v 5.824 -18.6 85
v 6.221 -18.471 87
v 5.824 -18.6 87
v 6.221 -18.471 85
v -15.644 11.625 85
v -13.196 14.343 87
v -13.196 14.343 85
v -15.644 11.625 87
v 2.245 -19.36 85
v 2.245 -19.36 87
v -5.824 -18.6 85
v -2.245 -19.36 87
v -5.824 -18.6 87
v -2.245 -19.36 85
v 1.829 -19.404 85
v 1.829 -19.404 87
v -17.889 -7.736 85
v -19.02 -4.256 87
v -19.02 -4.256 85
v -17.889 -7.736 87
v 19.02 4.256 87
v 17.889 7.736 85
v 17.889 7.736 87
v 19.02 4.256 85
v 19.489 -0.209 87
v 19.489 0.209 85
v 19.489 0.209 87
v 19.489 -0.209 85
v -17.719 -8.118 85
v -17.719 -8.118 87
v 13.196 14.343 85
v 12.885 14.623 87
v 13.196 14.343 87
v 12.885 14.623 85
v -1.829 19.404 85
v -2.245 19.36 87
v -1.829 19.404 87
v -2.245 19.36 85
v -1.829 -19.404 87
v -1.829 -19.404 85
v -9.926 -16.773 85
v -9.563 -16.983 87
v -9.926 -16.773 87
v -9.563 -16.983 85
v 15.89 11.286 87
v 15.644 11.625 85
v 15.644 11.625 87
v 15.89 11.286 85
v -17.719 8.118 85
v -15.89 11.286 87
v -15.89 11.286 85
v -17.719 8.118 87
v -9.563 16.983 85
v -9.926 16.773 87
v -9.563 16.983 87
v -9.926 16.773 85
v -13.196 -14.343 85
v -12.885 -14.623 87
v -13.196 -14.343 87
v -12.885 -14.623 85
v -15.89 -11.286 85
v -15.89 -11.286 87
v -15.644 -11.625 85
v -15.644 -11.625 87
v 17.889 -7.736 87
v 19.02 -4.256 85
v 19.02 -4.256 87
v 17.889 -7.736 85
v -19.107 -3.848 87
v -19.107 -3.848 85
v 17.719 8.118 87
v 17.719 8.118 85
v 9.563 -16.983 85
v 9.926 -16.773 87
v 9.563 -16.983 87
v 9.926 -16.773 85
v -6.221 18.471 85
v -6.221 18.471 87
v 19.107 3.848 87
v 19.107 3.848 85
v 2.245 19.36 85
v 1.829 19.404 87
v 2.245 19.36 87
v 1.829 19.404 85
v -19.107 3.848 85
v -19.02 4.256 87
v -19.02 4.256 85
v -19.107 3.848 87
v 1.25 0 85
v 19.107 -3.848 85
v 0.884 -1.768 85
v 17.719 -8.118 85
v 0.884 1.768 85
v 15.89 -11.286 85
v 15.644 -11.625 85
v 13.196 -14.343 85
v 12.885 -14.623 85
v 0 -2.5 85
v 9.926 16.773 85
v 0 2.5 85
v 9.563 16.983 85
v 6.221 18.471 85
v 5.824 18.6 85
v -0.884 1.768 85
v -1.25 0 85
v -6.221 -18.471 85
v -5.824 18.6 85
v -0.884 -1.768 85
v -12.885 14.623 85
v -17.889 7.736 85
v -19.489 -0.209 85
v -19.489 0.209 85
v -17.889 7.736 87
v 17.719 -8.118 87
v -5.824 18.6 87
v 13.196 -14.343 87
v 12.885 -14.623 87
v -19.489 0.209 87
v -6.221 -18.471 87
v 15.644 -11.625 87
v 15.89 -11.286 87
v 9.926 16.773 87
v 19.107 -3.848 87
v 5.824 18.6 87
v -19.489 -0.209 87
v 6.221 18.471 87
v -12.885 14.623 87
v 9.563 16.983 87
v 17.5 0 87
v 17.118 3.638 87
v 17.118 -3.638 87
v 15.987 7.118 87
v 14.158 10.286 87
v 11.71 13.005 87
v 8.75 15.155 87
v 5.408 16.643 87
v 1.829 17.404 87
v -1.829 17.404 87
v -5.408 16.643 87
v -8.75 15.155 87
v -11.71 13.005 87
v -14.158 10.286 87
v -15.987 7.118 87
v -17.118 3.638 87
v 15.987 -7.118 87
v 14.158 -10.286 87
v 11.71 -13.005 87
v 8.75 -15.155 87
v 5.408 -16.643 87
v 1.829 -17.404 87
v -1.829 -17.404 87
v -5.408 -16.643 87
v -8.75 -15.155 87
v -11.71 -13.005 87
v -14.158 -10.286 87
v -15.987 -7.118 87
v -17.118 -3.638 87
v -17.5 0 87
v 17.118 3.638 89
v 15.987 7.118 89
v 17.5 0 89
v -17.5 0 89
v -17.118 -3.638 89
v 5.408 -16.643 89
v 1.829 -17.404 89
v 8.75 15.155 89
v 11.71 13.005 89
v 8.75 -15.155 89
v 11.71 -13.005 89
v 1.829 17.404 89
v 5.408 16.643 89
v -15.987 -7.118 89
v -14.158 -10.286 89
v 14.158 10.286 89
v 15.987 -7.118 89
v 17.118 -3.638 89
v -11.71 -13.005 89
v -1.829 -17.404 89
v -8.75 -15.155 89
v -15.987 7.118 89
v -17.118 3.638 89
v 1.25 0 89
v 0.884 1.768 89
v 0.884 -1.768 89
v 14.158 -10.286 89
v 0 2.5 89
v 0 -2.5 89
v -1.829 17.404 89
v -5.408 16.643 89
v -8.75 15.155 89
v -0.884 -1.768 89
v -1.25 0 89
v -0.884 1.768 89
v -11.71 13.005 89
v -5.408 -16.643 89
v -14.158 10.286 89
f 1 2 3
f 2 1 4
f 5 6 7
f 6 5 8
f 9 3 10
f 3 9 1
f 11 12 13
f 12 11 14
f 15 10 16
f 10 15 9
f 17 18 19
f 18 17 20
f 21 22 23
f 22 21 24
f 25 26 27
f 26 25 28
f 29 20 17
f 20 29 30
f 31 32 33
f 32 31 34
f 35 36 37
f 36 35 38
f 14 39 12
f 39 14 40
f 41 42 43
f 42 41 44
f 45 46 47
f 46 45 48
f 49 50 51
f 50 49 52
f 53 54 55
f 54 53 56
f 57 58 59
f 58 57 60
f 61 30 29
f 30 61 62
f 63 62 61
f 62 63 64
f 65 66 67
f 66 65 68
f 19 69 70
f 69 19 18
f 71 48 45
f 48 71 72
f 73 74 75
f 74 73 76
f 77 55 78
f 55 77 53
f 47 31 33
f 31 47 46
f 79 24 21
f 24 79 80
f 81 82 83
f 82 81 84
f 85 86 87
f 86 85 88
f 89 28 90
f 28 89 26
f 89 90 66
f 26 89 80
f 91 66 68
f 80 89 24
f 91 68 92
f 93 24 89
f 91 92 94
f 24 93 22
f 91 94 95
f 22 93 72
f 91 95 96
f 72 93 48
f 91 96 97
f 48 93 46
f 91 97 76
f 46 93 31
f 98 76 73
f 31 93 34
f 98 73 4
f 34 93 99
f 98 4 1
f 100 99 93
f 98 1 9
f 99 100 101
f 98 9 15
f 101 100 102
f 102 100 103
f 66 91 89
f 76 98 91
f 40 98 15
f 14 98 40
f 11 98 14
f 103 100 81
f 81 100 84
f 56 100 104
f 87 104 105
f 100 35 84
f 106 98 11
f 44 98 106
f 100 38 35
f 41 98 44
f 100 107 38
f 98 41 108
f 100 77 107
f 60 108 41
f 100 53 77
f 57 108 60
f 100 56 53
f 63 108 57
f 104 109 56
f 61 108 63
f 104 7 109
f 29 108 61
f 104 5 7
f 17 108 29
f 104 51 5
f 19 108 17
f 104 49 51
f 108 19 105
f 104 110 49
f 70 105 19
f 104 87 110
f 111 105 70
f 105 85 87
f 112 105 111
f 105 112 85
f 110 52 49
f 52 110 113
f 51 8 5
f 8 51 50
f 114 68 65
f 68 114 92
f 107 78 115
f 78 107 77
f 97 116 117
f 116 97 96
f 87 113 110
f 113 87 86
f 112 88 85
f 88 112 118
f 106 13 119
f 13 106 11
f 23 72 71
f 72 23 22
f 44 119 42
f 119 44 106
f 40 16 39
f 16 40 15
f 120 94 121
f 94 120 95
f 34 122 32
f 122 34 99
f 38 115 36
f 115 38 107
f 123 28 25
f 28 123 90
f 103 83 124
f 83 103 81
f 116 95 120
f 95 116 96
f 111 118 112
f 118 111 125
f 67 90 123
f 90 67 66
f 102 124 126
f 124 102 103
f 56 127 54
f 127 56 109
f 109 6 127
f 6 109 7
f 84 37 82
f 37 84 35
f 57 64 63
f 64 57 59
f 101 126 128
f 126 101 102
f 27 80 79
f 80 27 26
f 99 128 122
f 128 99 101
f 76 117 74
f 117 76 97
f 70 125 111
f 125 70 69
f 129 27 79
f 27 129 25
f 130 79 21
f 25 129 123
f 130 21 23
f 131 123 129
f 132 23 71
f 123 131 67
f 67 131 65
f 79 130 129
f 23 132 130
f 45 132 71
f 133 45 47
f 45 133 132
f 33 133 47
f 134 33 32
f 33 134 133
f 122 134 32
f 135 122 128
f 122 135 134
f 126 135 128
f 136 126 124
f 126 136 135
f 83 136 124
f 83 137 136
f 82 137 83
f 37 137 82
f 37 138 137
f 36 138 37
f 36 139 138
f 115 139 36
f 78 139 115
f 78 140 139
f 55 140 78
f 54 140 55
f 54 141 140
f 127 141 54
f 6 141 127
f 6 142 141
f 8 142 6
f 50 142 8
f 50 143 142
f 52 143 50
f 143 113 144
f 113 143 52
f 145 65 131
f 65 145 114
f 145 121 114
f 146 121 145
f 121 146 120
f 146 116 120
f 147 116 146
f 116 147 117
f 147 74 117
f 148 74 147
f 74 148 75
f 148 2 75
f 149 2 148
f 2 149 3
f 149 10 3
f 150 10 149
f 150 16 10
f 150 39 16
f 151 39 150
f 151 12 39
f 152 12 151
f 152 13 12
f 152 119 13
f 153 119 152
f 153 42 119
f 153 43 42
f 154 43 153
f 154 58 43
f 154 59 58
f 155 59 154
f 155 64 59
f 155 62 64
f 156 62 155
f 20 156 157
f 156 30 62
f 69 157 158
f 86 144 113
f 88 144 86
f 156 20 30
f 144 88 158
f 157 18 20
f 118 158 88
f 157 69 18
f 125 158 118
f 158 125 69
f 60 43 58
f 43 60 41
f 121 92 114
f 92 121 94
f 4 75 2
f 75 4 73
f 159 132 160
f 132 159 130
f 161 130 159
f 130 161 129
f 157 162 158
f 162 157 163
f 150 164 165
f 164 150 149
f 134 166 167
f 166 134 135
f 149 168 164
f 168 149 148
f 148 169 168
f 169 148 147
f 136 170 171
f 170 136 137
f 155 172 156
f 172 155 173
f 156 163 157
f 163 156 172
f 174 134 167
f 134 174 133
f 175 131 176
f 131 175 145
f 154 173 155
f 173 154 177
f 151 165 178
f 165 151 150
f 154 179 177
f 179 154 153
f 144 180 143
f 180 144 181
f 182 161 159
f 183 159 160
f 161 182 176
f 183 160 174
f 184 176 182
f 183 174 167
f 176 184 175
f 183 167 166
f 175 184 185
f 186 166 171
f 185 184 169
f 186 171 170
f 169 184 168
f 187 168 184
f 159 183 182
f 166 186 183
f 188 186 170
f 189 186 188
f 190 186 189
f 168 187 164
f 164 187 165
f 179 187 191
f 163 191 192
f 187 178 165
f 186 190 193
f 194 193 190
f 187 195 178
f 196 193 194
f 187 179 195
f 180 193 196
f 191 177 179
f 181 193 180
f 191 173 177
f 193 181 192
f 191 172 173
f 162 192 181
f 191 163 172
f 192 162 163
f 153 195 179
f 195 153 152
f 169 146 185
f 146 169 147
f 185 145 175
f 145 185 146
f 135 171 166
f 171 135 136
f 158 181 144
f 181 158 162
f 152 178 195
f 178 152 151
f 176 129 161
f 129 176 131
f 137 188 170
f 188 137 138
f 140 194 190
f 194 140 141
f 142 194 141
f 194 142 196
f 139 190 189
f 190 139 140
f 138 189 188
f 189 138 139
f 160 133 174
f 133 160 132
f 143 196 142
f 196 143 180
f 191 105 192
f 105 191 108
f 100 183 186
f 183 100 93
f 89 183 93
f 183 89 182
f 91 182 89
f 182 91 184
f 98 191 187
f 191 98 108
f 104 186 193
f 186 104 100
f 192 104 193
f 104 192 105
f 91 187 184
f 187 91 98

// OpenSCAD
/*
linear_extrude(30)
difference(){
    offset(2)
    circle(d=68-2);
    circle(d=68-2);
}
translate([0,0,30])
difference(){
cylinder(d1=70,d2=39, h=40);
translate([0,0,-0.05])
cylinder(d1=70-4,d2=39-4, h=40.1);
}
translate([0,0,70])
linear_extrude(15)
difference(){
    offset(2)
    circle(d=37-2);
    circle(d=37-2);
}
*/
difference(){
translate([0,0,85]){
    linear_extrude(2)
    offset(2)
    circle(d=37-2);
    linear_extrude(4)
    circle(d=37-2);
}
scale([0.5,1,1])
cylinder(d=5,h=100);
}
